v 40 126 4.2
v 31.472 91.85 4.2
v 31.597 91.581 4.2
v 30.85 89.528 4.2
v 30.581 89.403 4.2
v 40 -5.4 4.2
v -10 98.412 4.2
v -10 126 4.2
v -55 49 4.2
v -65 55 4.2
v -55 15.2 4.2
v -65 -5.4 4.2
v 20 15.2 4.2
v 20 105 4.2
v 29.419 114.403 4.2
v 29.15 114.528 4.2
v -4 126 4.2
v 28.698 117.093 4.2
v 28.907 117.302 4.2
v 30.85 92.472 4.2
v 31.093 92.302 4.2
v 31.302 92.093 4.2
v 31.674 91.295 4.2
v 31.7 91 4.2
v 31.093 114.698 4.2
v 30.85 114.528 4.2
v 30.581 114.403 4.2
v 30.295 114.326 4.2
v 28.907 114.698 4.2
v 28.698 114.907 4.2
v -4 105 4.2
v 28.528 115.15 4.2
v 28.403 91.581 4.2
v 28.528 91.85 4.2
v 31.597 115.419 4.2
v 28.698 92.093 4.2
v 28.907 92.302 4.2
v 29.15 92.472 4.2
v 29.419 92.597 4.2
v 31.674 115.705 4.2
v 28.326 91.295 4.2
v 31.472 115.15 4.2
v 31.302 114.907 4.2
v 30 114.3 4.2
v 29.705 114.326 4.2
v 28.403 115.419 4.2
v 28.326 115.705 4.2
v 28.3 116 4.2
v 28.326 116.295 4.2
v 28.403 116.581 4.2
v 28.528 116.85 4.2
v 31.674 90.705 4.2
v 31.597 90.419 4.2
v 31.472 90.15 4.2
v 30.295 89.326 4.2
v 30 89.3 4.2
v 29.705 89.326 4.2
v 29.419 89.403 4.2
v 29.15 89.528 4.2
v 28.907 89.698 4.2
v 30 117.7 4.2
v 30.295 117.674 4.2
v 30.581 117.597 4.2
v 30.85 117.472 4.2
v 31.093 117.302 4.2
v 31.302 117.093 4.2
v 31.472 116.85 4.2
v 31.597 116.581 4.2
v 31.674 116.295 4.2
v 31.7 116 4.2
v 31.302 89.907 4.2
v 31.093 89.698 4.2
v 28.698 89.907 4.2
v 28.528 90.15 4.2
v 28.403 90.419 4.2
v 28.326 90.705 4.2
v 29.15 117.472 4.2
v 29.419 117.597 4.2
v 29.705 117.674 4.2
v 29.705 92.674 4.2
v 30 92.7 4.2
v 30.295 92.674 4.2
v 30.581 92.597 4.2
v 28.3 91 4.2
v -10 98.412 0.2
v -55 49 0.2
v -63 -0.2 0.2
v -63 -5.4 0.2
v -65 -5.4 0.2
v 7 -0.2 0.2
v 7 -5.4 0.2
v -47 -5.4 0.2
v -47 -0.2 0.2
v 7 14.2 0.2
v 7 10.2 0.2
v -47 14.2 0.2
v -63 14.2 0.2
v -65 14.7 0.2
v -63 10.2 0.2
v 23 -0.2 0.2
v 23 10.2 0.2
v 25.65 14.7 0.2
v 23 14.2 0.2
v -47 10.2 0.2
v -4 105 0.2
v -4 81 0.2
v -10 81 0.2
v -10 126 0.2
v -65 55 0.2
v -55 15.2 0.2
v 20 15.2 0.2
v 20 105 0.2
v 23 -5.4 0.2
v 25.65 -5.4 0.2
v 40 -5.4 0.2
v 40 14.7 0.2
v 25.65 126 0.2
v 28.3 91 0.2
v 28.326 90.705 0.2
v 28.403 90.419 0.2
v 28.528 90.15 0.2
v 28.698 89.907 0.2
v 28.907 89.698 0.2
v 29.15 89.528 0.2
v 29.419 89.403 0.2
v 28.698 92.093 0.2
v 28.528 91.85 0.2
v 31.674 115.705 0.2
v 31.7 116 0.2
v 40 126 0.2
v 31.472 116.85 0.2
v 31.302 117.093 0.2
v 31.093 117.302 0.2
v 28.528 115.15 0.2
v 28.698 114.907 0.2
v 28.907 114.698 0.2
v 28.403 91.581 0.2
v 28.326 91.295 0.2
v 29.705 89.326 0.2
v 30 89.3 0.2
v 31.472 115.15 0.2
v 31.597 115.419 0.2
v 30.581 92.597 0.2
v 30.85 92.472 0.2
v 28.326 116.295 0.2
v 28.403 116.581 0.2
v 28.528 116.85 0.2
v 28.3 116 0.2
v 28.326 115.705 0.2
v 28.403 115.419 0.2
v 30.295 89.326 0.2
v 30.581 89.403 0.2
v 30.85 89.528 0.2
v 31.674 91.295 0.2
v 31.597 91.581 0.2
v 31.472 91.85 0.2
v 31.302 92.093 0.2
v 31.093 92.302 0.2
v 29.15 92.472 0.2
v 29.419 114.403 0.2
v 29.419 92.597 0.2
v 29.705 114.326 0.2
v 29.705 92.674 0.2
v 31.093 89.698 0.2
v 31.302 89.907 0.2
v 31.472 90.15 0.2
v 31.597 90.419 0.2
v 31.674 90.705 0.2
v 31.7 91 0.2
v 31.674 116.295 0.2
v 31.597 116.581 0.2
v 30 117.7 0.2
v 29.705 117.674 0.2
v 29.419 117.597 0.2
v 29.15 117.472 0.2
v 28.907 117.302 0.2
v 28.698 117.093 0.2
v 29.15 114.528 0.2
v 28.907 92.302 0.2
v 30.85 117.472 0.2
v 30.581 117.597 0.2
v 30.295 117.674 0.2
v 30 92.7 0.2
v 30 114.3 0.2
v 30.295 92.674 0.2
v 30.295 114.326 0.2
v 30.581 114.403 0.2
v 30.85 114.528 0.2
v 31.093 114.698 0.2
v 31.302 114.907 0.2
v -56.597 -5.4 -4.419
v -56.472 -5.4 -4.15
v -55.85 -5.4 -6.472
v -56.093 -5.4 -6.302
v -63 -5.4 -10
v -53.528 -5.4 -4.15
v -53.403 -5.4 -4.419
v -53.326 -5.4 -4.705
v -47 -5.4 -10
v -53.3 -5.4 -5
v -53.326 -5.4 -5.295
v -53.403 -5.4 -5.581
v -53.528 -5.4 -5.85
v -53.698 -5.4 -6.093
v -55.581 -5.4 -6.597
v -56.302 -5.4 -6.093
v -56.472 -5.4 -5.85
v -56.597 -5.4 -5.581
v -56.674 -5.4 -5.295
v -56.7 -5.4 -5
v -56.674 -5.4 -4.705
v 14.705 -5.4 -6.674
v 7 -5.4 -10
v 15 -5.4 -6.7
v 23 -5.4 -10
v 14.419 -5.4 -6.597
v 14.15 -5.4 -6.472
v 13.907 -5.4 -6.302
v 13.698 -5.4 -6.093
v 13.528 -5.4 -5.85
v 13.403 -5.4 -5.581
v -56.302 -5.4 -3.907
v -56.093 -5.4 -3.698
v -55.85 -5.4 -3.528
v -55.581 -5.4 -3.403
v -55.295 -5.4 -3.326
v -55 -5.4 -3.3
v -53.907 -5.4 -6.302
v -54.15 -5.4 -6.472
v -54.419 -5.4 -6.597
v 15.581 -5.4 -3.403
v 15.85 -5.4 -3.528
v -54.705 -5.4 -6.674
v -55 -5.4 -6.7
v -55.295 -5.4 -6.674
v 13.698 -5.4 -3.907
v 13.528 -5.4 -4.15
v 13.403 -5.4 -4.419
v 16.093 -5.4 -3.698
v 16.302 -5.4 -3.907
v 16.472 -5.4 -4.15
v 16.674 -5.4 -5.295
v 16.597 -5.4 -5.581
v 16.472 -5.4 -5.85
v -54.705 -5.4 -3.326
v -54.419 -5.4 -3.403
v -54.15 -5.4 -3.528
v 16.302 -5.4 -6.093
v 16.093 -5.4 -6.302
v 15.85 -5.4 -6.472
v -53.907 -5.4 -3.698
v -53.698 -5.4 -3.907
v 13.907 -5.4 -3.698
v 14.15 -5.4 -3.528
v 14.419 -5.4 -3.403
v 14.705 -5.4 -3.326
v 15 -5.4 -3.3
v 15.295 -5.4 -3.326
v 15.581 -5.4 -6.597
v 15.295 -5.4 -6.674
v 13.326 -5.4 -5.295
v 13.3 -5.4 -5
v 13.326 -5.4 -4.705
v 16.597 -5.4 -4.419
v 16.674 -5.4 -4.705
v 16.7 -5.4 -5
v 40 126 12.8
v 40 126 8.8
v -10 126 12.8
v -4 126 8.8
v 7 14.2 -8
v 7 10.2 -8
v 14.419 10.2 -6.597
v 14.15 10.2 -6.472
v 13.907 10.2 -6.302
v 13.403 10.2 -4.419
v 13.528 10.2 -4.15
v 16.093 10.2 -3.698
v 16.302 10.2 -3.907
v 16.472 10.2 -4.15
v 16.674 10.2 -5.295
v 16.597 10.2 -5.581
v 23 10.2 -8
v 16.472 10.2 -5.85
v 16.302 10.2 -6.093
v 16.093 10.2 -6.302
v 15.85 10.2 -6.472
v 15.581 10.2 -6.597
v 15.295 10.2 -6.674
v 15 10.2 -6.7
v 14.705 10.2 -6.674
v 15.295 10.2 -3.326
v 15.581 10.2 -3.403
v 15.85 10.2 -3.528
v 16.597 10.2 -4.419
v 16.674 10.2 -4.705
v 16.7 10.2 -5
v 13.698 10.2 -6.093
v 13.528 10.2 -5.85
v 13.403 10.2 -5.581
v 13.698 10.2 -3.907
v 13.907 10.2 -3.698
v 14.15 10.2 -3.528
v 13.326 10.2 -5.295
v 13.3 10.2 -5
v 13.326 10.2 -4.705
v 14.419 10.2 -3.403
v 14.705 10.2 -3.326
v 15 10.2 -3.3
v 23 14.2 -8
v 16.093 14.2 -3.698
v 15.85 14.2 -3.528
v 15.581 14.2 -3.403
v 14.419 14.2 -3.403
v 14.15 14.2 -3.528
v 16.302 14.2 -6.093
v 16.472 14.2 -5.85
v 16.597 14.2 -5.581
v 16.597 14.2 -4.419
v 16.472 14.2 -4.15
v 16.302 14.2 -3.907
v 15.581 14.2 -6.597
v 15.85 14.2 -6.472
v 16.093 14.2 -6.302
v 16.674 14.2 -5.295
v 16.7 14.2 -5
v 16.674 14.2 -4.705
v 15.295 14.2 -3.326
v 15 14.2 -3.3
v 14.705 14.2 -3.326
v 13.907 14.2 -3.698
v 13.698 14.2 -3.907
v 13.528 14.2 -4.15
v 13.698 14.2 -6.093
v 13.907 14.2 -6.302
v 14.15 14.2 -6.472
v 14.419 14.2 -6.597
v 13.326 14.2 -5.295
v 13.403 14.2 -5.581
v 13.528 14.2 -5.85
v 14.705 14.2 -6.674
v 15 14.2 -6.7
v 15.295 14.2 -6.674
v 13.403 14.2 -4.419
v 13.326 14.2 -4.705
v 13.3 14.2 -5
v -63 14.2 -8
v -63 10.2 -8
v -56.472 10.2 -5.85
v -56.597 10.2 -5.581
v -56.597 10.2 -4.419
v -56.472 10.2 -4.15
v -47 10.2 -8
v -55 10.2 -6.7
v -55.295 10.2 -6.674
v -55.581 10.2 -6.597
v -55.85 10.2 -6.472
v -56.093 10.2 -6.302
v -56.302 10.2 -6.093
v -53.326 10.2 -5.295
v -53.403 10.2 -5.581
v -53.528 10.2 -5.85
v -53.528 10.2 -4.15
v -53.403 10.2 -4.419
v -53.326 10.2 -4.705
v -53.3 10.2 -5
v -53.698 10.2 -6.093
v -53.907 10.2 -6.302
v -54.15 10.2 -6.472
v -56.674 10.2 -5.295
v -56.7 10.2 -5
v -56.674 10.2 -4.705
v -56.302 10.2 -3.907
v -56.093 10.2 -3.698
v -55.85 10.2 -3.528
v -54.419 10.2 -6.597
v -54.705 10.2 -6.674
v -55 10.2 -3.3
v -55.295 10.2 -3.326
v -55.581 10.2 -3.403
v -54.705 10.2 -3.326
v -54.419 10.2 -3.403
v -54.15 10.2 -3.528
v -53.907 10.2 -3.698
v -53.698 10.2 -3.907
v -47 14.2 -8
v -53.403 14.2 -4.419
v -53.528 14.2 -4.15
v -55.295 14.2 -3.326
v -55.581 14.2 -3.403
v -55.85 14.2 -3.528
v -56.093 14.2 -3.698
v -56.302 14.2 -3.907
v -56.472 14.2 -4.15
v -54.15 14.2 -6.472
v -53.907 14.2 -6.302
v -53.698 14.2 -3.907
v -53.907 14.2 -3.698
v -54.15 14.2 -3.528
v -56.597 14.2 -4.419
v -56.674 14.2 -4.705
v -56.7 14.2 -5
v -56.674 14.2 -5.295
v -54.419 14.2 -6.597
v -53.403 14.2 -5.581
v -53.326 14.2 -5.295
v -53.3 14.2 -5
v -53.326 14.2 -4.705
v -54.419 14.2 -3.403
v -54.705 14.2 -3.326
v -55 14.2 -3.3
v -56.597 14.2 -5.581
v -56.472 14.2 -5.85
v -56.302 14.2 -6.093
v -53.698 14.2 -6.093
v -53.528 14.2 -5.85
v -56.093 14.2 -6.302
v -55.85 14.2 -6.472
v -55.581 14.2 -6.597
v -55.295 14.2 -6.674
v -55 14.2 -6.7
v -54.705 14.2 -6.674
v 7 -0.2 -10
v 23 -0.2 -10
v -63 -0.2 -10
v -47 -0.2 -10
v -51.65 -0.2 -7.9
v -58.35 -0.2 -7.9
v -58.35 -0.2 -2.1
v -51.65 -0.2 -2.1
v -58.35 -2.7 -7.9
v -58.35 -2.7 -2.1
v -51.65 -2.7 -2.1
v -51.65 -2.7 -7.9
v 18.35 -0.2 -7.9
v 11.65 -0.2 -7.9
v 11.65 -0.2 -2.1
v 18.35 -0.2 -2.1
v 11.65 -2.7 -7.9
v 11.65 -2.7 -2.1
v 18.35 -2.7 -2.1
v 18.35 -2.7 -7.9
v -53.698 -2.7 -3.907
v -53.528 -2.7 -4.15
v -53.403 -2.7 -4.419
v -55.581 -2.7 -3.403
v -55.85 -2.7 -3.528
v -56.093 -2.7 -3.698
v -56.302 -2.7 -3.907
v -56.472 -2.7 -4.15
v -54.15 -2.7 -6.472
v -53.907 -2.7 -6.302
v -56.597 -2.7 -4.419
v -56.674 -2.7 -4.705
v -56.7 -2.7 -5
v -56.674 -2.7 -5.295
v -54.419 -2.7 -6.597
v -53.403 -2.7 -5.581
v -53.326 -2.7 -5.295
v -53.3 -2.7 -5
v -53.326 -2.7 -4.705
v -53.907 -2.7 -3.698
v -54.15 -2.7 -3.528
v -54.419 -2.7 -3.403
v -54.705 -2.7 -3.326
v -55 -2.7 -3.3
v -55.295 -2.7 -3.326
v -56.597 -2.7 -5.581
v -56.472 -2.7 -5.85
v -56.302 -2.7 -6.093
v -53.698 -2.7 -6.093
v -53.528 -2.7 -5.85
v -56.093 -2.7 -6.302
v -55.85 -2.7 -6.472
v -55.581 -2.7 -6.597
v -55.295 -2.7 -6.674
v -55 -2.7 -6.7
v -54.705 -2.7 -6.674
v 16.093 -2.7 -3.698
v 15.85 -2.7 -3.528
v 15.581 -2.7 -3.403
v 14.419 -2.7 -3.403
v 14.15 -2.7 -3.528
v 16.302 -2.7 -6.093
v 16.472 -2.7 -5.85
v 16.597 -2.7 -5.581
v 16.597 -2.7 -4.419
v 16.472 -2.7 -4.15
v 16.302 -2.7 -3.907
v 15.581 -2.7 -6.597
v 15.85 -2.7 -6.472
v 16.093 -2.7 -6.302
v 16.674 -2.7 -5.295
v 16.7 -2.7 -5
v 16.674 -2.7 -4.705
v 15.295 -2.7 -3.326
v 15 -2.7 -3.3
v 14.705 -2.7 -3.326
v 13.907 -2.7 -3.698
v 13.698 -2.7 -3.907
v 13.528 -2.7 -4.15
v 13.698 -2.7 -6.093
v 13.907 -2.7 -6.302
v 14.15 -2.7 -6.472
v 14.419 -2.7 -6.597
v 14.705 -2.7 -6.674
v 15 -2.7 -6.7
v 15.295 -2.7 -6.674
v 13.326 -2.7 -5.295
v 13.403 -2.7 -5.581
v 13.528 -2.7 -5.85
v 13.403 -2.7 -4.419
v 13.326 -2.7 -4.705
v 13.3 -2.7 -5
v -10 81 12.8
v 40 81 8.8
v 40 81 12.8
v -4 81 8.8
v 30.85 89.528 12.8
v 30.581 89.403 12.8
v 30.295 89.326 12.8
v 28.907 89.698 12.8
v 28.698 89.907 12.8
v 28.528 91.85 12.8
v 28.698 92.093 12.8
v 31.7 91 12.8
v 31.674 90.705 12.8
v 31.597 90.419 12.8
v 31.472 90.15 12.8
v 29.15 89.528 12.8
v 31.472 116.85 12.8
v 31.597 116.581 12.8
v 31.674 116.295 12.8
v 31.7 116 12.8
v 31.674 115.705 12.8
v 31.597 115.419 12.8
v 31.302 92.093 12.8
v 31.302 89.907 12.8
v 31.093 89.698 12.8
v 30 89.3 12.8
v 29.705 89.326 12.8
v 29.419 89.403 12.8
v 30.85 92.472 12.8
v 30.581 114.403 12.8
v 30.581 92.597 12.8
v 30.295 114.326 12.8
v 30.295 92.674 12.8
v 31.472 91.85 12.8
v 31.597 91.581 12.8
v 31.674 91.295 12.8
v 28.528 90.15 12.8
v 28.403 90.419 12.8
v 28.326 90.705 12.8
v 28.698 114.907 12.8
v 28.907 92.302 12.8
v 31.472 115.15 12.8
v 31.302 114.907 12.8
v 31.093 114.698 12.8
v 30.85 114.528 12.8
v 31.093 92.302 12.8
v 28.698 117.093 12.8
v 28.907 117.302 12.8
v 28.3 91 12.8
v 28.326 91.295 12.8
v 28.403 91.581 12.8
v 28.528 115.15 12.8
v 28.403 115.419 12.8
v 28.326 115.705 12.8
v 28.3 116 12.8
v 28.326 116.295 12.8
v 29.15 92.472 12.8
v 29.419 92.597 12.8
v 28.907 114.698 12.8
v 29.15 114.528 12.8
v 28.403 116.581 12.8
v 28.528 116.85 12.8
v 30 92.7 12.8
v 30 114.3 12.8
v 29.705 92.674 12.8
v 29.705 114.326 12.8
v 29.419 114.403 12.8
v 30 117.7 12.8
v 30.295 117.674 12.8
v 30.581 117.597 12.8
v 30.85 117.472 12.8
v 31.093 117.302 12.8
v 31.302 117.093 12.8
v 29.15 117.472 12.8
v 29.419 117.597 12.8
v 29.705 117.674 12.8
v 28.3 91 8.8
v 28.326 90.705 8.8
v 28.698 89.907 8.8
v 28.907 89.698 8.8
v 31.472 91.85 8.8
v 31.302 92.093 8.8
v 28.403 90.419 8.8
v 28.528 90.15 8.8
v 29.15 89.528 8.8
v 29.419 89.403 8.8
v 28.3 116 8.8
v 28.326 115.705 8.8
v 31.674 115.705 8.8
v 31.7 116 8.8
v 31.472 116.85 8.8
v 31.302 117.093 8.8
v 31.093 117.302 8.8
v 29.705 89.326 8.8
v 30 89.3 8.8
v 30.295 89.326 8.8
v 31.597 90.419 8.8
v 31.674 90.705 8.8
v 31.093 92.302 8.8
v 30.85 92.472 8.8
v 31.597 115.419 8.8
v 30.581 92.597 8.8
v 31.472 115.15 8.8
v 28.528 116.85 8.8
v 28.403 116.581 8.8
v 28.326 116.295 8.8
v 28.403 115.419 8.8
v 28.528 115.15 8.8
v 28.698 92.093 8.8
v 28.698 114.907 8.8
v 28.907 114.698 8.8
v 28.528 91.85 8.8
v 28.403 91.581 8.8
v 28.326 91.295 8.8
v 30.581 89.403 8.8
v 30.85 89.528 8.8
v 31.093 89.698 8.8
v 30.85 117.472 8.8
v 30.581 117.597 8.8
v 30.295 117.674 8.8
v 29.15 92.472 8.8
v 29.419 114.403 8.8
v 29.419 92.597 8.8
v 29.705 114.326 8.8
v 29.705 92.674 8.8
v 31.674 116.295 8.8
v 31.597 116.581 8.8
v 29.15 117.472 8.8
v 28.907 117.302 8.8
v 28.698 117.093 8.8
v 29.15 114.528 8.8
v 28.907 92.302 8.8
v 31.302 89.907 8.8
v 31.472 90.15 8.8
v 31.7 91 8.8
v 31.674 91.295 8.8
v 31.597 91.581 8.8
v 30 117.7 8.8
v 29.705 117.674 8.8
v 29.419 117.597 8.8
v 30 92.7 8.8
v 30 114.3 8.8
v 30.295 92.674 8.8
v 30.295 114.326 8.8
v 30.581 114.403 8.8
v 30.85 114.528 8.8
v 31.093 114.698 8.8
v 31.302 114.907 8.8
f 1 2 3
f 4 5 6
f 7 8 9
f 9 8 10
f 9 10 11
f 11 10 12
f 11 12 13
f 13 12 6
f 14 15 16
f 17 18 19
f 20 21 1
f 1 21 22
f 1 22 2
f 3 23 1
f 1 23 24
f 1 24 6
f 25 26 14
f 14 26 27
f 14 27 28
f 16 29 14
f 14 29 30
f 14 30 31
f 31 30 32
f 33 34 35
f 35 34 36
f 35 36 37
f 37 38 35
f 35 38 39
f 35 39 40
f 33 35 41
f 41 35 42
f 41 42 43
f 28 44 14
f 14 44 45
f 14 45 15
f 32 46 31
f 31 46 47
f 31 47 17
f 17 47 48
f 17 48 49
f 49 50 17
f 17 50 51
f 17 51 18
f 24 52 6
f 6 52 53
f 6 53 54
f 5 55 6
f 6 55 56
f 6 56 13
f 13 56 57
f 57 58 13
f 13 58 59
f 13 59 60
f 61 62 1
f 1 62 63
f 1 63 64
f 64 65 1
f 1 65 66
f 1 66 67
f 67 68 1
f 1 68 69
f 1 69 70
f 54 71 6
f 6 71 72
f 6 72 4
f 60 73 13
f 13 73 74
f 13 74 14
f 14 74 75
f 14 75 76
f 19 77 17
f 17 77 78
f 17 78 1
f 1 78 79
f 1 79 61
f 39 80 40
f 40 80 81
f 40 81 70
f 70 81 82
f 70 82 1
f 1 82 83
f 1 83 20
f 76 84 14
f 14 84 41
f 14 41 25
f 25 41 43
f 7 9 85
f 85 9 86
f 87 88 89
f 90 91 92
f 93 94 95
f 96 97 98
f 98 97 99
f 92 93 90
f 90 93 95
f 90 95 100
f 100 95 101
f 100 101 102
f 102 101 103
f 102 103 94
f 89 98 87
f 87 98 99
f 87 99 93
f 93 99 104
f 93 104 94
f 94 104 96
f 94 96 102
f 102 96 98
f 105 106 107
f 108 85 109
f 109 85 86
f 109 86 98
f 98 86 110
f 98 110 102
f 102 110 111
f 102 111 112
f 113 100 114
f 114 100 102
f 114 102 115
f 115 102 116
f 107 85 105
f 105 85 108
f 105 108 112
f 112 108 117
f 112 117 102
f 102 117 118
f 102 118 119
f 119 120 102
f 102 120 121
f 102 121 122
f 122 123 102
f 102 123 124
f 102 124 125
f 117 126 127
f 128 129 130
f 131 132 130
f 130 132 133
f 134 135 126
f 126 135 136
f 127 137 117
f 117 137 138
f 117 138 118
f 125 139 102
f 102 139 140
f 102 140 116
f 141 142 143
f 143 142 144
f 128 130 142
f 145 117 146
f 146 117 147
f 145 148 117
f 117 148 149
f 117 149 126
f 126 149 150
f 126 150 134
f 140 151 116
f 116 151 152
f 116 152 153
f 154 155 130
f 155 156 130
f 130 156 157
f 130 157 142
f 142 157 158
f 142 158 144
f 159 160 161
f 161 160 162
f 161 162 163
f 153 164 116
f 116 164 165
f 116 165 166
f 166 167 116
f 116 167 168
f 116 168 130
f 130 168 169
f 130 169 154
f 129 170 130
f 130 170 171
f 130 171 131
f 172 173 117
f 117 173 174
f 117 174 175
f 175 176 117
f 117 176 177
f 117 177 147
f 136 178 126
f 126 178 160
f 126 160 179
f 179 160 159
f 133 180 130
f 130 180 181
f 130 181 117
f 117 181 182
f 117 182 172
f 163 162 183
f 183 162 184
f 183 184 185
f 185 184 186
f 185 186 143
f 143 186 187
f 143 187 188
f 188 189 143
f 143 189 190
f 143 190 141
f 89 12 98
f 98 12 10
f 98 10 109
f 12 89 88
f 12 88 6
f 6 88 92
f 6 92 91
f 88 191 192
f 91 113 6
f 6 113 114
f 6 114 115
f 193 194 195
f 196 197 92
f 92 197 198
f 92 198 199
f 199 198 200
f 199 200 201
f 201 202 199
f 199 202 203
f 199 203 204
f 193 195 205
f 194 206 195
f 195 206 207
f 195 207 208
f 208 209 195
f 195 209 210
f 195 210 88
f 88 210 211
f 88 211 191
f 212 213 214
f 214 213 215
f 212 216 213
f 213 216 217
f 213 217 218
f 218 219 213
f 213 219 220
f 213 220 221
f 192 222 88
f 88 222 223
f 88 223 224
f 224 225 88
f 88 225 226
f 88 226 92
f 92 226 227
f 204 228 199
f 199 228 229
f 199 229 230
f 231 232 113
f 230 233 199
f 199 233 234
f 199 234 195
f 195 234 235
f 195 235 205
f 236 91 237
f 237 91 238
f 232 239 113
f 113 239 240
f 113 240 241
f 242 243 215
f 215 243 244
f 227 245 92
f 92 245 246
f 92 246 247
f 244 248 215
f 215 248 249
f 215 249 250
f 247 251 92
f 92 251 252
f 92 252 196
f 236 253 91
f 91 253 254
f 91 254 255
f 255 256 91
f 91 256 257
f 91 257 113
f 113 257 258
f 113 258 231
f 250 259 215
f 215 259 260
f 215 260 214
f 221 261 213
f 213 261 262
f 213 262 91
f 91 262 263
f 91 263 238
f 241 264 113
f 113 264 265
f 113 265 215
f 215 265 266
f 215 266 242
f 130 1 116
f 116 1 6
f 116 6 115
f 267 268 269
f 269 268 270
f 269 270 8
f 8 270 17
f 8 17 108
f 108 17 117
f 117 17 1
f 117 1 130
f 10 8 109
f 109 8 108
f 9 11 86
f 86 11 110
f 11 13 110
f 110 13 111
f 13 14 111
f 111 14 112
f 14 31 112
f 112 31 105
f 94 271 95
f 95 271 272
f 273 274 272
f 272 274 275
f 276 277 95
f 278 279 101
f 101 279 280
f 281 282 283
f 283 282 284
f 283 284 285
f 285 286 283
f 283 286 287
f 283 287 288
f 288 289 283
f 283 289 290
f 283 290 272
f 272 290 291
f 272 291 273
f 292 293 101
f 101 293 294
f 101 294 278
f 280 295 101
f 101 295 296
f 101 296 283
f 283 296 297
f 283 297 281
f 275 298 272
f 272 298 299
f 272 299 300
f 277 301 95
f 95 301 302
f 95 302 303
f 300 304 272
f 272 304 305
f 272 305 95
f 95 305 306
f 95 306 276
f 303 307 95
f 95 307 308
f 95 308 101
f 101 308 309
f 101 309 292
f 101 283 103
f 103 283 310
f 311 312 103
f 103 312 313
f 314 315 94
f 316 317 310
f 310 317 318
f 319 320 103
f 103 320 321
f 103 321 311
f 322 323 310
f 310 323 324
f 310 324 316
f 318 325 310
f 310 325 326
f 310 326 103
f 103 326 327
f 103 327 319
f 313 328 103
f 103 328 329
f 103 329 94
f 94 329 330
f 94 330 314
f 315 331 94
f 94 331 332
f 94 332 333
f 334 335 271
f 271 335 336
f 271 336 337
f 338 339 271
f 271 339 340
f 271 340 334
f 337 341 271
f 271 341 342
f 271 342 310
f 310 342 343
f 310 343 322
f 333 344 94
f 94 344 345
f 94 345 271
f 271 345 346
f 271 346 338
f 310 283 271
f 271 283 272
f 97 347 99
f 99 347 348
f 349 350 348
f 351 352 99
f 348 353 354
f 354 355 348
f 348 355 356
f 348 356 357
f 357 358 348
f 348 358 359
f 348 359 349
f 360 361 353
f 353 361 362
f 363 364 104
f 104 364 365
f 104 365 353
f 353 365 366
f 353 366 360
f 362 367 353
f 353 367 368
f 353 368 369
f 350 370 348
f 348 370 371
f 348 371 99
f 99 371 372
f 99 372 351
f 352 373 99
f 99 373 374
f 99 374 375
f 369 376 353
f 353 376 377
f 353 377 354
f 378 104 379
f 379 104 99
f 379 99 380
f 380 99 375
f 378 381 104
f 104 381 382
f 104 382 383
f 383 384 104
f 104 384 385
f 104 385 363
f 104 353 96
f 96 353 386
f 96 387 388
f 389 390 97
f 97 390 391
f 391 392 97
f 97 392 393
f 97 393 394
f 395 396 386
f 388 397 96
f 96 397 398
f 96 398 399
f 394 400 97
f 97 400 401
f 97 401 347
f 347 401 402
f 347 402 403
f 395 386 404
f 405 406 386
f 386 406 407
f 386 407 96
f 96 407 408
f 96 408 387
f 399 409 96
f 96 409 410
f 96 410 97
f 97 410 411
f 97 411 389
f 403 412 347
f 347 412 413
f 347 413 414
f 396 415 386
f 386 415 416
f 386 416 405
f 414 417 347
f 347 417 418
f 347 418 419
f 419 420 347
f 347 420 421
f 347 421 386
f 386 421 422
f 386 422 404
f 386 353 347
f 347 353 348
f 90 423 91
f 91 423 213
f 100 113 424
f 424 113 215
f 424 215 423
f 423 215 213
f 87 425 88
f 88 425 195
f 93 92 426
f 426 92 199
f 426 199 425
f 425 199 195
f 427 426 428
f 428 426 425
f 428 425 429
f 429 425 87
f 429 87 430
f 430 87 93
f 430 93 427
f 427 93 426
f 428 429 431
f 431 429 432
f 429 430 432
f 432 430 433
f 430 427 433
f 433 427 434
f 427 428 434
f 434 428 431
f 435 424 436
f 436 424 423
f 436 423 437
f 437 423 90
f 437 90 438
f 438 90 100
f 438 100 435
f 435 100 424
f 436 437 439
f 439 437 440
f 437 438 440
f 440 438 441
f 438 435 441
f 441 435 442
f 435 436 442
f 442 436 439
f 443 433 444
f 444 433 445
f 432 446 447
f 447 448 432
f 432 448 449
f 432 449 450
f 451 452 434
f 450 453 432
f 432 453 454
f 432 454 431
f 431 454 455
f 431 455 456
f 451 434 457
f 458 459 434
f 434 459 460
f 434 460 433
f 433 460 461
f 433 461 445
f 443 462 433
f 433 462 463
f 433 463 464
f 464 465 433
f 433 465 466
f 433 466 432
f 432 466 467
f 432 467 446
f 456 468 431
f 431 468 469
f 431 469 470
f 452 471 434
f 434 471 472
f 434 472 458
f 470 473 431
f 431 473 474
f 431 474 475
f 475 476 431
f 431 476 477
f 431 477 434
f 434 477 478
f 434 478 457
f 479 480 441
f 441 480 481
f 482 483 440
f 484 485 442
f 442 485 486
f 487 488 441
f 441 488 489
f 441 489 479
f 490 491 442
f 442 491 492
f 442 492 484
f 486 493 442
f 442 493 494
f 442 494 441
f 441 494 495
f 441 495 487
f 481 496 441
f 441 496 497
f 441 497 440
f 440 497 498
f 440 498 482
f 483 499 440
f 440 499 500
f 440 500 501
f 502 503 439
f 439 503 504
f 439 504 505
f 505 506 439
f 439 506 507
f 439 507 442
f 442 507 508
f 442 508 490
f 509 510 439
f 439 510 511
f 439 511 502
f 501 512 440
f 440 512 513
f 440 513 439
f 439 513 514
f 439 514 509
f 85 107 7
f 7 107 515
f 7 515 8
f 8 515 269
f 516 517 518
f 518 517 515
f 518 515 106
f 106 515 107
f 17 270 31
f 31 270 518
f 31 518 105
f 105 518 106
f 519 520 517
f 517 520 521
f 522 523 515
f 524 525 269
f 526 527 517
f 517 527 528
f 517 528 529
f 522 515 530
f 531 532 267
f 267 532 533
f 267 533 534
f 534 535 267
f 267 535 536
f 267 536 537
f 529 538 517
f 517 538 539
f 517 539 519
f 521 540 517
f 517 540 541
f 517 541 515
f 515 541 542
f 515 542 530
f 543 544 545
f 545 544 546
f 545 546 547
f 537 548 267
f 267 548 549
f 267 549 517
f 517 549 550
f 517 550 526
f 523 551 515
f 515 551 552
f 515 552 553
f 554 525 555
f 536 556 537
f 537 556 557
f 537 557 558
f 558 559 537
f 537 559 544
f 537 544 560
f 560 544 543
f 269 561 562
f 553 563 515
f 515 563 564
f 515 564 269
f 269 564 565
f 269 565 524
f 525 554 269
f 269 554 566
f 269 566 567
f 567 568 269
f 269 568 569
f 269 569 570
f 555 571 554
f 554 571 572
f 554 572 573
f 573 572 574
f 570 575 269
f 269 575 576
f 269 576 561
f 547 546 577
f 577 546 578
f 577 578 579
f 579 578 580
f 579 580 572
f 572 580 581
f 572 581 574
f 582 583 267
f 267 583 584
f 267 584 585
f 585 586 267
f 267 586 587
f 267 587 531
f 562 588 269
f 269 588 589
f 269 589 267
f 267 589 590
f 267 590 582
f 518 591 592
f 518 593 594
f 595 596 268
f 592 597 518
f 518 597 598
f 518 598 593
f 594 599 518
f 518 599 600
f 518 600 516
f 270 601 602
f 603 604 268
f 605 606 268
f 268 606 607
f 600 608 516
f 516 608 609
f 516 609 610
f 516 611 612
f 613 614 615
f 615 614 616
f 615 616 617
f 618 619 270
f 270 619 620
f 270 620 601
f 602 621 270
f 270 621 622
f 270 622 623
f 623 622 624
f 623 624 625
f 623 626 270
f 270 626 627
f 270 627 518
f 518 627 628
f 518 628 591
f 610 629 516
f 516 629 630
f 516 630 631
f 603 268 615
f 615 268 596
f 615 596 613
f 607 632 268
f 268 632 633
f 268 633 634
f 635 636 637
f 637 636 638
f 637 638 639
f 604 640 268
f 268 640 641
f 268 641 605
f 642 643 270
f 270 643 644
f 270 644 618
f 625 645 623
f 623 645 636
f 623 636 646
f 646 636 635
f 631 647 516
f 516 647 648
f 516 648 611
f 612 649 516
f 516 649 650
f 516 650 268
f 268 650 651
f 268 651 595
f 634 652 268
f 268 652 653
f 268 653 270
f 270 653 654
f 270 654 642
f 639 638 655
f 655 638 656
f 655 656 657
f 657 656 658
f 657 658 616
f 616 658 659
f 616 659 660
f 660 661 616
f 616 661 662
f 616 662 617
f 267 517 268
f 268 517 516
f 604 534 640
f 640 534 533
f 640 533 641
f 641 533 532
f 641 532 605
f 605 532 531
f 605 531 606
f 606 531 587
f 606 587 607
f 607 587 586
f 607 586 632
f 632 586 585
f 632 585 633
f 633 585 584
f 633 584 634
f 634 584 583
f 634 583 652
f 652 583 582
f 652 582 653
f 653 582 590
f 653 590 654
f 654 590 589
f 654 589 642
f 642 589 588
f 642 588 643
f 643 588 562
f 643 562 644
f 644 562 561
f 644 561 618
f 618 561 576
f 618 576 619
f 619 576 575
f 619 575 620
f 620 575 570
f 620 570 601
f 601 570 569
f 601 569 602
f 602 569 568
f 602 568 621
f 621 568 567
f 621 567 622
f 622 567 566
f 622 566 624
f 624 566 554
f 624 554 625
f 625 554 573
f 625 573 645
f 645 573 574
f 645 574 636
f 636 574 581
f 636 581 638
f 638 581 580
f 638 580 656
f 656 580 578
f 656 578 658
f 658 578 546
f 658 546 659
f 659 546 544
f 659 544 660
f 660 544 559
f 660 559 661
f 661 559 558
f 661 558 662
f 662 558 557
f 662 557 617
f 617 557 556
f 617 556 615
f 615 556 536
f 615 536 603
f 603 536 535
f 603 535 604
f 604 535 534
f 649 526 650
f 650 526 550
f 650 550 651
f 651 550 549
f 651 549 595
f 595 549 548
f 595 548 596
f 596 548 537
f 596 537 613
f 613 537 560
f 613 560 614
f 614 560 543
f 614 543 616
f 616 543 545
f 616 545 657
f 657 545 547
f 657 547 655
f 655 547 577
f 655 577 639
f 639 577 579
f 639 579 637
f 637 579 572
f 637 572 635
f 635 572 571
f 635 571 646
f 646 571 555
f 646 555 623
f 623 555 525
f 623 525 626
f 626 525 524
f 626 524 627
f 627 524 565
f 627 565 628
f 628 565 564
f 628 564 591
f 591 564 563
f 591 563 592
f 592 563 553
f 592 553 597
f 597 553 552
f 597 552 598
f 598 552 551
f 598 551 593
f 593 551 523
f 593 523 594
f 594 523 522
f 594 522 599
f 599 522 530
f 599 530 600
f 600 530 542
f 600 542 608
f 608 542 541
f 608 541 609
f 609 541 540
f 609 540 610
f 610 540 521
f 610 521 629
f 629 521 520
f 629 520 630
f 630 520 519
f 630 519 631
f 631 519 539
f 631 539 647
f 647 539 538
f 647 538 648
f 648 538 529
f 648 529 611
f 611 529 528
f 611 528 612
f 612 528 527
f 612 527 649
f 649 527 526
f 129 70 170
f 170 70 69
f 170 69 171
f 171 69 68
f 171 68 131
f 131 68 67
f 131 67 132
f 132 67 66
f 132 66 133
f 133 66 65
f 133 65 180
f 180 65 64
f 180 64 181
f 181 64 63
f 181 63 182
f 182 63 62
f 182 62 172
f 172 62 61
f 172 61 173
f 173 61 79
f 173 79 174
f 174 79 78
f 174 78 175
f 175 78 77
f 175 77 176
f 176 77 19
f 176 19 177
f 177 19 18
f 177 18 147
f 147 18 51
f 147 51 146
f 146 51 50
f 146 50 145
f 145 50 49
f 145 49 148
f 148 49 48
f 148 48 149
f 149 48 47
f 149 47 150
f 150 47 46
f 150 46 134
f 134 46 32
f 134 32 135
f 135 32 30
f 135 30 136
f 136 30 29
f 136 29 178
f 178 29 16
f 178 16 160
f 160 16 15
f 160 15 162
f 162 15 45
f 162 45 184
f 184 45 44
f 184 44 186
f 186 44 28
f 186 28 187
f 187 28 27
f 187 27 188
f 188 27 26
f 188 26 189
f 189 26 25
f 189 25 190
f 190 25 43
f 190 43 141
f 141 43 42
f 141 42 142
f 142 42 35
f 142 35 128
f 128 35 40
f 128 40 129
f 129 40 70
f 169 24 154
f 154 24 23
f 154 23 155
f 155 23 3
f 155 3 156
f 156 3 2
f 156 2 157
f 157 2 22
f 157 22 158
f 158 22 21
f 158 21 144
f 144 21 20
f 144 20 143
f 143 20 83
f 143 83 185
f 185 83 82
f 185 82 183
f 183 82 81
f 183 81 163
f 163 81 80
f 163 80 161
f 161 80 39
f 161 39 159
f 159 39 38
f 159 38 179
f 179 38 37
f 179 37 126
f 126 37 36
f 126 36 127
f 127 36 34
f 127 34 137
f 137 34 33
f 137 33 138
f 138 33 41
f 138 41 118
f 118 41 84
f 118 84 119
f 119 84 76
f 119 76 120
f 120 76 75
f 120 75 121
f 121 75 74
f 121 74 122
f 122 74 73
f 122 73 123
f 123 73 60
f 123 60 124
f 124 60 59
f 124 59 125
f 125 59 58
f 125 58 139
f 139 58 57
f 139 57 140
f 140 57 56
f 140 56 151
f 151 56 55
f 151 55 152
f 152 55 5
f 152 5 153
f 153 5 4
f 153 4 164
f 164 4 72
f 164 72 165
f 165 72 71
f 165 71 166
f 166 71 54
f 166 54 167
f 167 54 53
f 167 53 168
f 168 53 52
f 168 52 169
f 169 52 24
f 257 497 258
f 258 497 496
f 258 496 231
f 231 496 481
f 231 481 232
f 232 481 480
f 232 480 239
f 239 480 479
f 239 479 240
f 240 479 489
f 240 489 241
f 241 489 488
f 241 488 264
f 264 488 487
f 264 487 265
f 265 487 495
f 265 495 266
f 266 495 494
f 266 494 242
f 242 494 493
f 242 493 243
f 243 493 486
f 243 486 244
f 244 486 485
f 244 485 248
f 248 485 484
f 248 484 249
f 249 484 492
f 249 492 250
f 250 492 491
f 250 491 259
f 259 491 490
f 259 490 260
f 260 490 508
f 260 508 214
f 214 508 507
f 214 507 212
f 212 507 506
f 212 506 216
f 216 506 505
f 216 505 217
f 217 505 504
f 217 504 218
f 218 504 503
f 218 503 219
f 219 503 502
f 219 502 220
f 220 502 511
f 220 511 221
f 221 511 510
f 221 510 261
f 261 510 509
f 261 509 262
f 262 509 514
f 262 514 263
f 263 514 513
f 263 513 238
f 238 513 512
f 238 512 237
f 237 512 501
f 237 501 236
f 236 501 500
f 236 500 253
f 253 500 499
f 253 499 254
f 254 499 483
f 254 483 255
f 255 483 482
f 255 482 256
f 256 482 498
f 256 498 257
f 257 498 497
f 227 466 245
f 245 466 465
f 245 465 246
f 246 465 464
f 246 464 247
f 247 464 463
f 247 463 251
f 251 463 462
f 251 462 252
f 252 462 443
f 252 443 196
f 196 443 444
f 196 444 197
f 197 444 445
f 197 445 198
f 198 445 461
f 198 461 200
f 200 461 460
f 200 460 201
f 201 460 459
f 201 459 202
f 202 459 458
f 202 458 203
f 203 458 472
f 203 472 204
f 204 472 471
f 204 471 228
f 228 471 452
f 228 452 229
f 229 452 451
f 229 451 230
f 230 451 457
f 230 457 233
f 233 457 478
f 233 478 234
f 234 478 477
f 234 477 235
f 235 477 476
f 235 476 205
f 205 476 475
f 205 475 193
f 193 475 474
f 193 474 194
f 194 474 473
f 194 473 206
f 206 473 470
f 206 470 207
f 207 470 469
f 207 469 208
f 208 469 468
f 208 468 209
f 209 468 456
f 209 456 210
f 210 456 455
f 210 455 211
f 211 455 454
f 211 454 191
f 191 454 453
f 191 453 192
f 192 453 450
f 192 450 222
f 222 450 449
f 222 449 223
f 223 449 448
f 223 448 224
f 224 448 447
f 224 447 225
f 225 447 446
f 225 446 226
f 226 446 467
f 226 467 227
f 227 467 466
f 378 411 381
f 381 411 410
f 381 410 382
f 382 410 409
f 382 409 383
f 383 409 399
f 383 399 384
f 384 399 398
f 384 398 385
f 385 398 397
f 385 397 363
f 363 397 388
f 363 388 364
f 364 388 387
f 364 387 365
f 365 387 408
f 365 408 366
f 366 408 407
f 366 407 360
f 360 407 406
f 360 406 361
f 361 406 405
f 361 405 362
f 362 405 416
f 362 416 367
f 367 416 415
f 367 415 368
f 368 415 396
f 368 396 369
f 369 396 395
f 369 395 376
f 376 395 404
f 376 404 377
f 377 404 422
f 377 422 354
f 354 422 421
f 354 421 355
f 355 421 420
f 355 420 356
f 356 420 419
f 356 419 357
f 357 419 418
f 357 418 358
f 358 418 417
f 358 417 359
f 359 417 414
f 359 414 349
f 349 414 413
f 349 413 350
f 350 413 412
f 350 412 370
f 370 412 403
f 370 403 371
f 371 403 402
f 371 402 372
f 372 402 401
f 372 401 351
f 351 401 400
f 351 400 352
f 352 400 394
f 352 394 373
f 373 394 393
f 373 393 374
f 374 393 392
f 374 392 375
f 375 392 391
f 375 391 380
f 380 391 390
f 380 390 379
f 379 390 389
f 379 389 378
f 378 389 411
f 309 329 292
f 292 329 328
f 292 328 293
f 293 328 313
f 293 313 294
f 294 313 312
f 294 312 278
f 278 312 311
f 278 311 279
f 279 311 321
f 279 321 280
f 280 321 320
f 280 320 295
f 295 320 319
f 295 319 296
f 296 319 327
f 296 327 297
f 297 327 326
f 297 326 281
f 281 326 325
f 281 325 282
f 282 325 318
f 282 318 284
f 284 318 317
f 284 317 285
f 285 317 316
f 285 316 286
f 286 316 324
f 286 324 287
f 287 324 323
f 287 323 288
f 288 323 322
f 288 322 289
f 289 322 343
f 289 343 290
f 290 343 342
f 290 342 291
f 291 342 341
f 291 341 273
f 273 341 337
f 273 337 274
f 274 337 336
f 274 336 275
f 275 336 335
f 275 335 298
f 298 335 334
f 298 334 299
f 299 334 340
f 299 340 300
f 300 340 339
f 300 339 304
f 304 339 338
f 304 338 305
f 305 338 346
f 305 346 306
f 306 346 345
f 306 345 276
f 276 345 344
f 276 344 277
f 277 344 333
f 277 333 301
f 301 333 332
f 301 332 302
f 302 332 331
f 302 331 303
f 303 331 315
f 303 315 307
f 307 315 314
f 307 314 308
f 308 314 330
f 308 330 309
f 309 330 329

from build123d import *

# Parameters (mm, degrees)
EXTRUDE_START                = 0.2
EXTRUDE_312_DEPTH            = 4
CUT_EXTRUDE_453_DEPTH        = 142.840191765
CUT_EXTRUDE_453_DEPTH_BACK   = 142.840191765
EXTRUDE_START_2              = -8
SKETCH_3_W                   = 16
SKETCH_3_H                   = 4
EXTRUDE_645_DEPTH            = 12.2
EXTRUDE_START_3              = -10
SKETCH_4_W                   = 16
SKETCH_4_H                   = 2.7
EXTRUDE_849_DEPTH            = 14.2
EXTRUDE_START_4              = -2.7
SKETCH_5_W                   = 16
SKETCH_5_H                   = 14.2
SKETCH_5_W_2                 = 6.7
SKETCH_5_H_2                 = 5.8
EXTRUDE_M3_DEPTH             = 2.5
SKETCH_6_W                   = 6
SKETCH_6_H                   = 45
EXTRUDE_1326_DEPTH           = 12.6
EXTRUDE_START_5              = 8.8
SKETCH_7_W                   = 50
SKETCH_7_H                   = 45
EXTRUDE_1474_DEPTH           = 4
CUT_EXTRUDE_3P4_DEPTH        = 143.354627603
CUT_EXTRUDE_3P4_DEPTH_BACK   = 143.354627603
SKETCH_8_R                   = 1.7
CUT_EXTRUDE_3P4_2_DEPTH      = 143.354627603
CUT_EXTRUDE_3P4_2_DEPTH_BACK = 143.354627603
SKETCH_9_R                   = 1.7


with BuildPart() as part:
    # 草图1 → Extrude 312 (new body)
    with BuildSketch(Plane.XY.offset(EXTRUDE_START)):
        Polygon((-65, -5.4), (40, -5.4), (40, 126), (-10, 126), (-65, 55), align=None)
    extrude(amount=EXTRUDE_312_DEPTH)

    # 草图2 → Cut-Extrude 453 (cut, two sides: drawn at the far end of the back side and taken through both)
    with BuildSketch(Plane.XY.offset(-CUT_EXTRUDE_453_DEPTH_BACK)):
        Polygon((-55, 15.2), (20, 15.2), (20, 105), (-4, 105), (-55, 49), align=None)
    extrude(amount=CUT_EXTRUDE_453_DEPTH + CUT_EXTRUDE_453_DEPTH_BACK, mode=Mode.SUBTRACT)

    # 草图3 → Extrude 645 (add)
    with BuildSketch(Plane.XY.offset(EXTRUDE_START_2)):
        with Locations((-55, 12.2)):
            Rectangle(SKETCH_3_W, SKETCH_3_H)
        with Locations((15, 12.2)):
            Rectangle(SKETCH_3_W, SKETCH_3_H)
    extrude(amount=EXTRUDE_645_DEPTH)

    # 草图4 → Extrude 849 (add)
    with BuildSketch(Plane.XY.offset(EXTRUDE_START_3)):
        with Locations((-55, -4.05)):
            Rectangle(SKETCH_4_W, SKETCH_4_H)
        with Locations((15, -4.05)):
            Rectangle(SKETCH_4_W, SKETCH_4_H)
    extrude(amount=EXTRUDE_849_DEPTH)

    # 草图5 → 下卡唇M3螺母防转槽 (add)
    # profile 1 of 2: a face of its own
    with BuildSketch(Plane(origin=(0, 0, 0), x_dir=(1, 0, 0), z_dir=(0, 1, 0)).offset(EXTRUDE_START_4)):
        with Locations((-55, 2.9)):
            Rectangle(SKETCH_5_W, SKETCH_5_H)
        with Locations((-55, 5)):
            Rectangle(SKETCH_5_W_2, SKETCH_5_H_2, mode=Mode.SUBTRACT)
    # profile 2 of 2: a face of its own
    with BuildSketch(Plane(origin=(0, 0, 0), x_dir=(1, 0, 0), z_dir=(0, 1, 0)).offset(EXTRUDE_START_4)):
        with Locations((15, 2.9)):
            Rectangle(SKETCH_5_W, SKETCH_5_H)
        with Locations((15, 5)):
            Rectangle(SKETCH_5_W_2, SKETCH_5_H_2, mode=Mode.SUBTRACT)
    extrude(amount=EXTRUDE_M3_DEPTH)

    # 草图6 → Extrude 1326 (add)
    with BuildSketch(Plane.XY.offset(EXTRUDE_START)):
        with Locations((-7, 103.5)):
            Rectangle(SKETCH_6_W, SKETCH_6_H)
    extrude(amount=EXTRUDE_1326_DEPTH)

    # 草图7 → Extrude 1474 (add)
    with BuildSketch(Plane.XY.offset(EXTRUDE_START_5)):
        with Locations((15, 103.5)):
            Rectangle(SKETCH_7_W, SKETCH_7_H)
    extrude(amount=EXTRUDE_1474_DEPTH)

    # 草图8 → Cut-Extrude 3p4 (cut, two sides: drawn at the far end of the back side and taken through both)
    with BuildSketch(Plane.XY.offset(-CUT_EXTRUDE_3P4_DEPTH_BACK)):
        with Locations((30, 91)):
            Circle(SKETCH_8_R)
        with Locations((30, 116)):
            Circle(SKETCH_8_R)
    extrude(amount=CUT_EXTRUDE_3P4_DEPTH + CUT_EXTRUDE_3P4_DEPTH_BACK, mode=Mode.SUBTRACT)

    # 草图9 → Cut-Extrude 3p4 2 (cut, two sides: drawn at the far end of the back side and taken through both)
    with BuildSketch(Plane(origin=(0, 0, 0), x_dir=(1, 0, 0), z_dir=(0, 1, 0)).offset(-CUT_EXTRUDE_3P4_2_DEPTH_BACK)):
        with Locations(Location((-55, 5, 0), (0, 0, 270))):
            Circle(SKETCH_9_R)
        with Locations(Location((15, 5, 0), (0, 0, 270))):
            Circle(SKETCH_9_R)
    extrude(amount=CUT_EXTRUDE_3P4_2_DEPTH + CUT_EXTRUDE_3P4_2_DEPTH_BACK, mode=Mode.SUBTRACT)


solid = part.part
